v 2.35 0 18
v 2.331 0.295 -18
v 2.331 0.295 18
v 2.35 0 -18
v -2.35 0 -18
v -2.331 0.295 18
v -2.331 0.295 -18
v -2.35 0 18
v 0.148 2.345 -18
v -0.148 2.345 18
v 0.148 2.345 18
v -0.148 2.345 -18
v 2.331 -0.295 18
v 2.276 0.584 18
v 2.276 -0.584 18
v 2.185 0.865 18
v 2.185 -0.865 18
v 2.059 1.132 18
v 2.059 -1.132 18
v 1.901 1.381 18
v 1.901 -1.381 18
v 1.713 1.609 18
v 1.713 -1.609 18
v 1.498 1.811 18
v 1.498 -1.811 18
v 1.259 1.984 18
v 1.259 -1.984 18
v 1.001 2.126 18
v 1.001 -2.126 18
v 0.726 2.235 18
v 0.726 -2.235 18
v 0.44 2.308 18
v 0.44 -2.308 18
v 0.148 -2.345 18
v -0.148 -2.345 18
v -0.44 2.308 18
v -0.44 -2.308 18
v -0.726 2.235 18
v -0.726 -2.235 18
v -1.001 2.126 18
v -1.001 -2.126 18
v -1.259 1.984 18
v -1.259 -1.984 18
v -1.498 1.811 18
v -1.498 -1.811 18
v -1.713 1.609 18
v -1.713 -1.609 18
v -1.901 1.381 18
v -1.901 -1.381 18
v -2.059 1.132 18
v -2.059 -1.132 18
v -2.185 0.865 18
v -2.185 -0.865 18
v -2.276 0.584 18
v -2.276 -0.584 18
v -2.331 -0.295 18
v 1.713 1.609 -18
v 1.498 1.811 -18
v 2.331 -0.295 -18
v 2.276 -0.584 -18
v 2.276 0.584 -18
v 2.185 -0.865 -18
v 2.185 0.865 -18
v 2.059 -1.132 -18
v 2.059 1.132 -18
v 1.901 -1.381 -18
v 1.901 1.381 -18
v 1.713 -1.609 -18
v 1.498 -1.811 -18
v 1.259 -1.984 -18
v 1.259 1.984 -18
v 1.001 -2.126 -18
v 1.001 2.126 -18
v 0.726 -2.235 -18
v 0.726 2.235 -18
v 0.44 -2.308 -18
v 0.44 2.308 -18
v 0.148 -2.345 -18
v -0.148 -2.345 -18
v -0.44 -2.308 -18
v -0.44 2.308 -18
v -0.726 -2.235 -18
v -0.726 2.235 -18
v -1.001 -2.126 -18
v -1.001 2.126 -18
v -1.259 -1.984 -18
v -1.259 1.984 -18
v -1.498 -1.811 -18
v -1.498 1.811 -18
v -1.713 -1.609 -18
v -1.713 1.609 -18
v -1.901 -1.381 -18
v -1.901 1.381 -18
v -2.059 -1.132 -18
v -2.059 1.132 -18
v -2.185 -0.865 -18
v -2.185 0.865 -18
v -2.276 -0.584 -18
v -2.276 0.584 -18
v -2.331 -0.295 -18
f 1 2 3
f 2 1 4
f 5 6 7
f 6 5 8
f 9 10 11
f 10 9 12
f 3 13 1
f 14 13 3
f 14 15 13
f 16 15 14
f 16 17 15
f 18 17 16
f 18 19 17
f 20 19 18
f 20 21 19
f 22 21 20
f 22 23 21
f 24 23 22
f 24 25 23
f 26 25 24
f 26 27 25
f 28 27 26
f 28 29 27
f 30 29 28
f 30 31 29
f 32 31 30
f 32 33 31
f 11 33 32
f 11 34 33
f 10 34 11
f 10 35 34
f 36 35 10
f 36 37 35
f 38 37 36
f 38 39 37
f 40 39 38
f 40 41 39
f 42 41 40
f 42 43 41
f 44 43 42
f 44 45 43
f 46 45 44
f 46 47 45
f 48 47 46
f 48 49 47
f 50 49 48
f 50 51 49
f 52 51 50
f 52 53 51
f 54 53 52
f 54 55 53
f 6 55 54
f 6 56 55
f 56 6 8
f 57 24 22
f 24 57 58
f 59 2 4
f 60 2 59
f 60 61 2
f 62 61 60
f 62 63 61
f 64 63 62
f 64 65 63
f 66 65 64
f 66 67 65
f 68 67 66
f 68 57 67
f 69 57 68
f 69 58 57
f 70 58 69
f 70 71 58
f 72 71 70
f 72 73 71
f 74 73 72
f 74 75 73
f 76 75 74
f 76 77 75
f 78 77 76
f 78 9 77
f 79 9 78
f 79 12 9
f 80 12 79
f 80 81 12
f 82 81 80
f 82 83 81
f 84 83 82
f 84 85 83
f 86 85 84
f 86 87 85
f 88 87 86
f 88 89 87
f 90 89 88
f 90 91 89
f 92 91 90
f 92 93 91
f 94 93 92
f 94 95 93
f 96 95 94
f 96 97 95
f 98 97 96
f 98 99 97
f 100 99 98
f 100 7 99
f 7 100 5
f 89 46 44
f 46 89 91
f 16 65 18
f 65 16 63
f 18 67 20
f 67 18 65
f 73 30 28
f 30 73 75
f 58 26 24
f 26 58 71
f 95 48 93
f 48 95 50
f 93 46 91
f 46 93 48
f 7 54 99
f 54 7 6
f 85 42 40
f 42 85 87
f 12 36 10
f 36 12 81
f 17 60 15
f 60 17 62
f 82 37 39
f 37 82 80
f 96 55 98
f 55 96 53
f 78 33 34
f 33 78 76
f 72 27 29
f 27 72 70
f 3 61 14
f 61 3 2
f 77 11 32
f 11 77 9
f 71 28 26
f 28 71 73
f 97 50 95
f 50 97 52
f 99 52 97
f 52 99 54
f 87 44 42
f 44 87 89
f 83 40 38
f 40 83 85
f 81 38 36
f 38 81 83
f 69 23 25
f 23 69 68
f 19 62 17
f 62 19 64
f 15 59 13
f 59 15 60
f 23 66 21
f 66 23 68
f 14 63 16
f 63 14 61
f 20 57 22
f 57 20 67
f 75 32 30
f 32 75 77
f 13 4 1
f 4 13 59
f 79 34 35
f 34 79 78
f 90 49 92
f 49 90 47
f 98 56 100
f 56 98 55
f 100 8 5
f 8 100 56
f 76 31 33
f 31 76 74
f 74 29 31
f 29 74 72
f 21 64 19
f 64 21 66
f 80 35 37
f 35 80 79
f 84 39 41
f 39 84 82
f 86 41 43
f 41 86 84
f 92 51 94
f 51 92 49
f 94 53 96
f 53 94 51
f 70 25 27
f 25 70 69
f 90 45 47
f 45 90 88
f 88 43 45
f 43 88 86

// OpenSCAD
$fn = 50;


difference() {
	union() {
		translate(v = [0, 0, -18.0000000000]) {
			cylinder(h = 36, r = 2.3500000000);
		}
	}
	union() {
		translate(v = [0, 0, -100.0000000000]) {
			cylinder(h = 200, r = 0);
		}
	}
}
